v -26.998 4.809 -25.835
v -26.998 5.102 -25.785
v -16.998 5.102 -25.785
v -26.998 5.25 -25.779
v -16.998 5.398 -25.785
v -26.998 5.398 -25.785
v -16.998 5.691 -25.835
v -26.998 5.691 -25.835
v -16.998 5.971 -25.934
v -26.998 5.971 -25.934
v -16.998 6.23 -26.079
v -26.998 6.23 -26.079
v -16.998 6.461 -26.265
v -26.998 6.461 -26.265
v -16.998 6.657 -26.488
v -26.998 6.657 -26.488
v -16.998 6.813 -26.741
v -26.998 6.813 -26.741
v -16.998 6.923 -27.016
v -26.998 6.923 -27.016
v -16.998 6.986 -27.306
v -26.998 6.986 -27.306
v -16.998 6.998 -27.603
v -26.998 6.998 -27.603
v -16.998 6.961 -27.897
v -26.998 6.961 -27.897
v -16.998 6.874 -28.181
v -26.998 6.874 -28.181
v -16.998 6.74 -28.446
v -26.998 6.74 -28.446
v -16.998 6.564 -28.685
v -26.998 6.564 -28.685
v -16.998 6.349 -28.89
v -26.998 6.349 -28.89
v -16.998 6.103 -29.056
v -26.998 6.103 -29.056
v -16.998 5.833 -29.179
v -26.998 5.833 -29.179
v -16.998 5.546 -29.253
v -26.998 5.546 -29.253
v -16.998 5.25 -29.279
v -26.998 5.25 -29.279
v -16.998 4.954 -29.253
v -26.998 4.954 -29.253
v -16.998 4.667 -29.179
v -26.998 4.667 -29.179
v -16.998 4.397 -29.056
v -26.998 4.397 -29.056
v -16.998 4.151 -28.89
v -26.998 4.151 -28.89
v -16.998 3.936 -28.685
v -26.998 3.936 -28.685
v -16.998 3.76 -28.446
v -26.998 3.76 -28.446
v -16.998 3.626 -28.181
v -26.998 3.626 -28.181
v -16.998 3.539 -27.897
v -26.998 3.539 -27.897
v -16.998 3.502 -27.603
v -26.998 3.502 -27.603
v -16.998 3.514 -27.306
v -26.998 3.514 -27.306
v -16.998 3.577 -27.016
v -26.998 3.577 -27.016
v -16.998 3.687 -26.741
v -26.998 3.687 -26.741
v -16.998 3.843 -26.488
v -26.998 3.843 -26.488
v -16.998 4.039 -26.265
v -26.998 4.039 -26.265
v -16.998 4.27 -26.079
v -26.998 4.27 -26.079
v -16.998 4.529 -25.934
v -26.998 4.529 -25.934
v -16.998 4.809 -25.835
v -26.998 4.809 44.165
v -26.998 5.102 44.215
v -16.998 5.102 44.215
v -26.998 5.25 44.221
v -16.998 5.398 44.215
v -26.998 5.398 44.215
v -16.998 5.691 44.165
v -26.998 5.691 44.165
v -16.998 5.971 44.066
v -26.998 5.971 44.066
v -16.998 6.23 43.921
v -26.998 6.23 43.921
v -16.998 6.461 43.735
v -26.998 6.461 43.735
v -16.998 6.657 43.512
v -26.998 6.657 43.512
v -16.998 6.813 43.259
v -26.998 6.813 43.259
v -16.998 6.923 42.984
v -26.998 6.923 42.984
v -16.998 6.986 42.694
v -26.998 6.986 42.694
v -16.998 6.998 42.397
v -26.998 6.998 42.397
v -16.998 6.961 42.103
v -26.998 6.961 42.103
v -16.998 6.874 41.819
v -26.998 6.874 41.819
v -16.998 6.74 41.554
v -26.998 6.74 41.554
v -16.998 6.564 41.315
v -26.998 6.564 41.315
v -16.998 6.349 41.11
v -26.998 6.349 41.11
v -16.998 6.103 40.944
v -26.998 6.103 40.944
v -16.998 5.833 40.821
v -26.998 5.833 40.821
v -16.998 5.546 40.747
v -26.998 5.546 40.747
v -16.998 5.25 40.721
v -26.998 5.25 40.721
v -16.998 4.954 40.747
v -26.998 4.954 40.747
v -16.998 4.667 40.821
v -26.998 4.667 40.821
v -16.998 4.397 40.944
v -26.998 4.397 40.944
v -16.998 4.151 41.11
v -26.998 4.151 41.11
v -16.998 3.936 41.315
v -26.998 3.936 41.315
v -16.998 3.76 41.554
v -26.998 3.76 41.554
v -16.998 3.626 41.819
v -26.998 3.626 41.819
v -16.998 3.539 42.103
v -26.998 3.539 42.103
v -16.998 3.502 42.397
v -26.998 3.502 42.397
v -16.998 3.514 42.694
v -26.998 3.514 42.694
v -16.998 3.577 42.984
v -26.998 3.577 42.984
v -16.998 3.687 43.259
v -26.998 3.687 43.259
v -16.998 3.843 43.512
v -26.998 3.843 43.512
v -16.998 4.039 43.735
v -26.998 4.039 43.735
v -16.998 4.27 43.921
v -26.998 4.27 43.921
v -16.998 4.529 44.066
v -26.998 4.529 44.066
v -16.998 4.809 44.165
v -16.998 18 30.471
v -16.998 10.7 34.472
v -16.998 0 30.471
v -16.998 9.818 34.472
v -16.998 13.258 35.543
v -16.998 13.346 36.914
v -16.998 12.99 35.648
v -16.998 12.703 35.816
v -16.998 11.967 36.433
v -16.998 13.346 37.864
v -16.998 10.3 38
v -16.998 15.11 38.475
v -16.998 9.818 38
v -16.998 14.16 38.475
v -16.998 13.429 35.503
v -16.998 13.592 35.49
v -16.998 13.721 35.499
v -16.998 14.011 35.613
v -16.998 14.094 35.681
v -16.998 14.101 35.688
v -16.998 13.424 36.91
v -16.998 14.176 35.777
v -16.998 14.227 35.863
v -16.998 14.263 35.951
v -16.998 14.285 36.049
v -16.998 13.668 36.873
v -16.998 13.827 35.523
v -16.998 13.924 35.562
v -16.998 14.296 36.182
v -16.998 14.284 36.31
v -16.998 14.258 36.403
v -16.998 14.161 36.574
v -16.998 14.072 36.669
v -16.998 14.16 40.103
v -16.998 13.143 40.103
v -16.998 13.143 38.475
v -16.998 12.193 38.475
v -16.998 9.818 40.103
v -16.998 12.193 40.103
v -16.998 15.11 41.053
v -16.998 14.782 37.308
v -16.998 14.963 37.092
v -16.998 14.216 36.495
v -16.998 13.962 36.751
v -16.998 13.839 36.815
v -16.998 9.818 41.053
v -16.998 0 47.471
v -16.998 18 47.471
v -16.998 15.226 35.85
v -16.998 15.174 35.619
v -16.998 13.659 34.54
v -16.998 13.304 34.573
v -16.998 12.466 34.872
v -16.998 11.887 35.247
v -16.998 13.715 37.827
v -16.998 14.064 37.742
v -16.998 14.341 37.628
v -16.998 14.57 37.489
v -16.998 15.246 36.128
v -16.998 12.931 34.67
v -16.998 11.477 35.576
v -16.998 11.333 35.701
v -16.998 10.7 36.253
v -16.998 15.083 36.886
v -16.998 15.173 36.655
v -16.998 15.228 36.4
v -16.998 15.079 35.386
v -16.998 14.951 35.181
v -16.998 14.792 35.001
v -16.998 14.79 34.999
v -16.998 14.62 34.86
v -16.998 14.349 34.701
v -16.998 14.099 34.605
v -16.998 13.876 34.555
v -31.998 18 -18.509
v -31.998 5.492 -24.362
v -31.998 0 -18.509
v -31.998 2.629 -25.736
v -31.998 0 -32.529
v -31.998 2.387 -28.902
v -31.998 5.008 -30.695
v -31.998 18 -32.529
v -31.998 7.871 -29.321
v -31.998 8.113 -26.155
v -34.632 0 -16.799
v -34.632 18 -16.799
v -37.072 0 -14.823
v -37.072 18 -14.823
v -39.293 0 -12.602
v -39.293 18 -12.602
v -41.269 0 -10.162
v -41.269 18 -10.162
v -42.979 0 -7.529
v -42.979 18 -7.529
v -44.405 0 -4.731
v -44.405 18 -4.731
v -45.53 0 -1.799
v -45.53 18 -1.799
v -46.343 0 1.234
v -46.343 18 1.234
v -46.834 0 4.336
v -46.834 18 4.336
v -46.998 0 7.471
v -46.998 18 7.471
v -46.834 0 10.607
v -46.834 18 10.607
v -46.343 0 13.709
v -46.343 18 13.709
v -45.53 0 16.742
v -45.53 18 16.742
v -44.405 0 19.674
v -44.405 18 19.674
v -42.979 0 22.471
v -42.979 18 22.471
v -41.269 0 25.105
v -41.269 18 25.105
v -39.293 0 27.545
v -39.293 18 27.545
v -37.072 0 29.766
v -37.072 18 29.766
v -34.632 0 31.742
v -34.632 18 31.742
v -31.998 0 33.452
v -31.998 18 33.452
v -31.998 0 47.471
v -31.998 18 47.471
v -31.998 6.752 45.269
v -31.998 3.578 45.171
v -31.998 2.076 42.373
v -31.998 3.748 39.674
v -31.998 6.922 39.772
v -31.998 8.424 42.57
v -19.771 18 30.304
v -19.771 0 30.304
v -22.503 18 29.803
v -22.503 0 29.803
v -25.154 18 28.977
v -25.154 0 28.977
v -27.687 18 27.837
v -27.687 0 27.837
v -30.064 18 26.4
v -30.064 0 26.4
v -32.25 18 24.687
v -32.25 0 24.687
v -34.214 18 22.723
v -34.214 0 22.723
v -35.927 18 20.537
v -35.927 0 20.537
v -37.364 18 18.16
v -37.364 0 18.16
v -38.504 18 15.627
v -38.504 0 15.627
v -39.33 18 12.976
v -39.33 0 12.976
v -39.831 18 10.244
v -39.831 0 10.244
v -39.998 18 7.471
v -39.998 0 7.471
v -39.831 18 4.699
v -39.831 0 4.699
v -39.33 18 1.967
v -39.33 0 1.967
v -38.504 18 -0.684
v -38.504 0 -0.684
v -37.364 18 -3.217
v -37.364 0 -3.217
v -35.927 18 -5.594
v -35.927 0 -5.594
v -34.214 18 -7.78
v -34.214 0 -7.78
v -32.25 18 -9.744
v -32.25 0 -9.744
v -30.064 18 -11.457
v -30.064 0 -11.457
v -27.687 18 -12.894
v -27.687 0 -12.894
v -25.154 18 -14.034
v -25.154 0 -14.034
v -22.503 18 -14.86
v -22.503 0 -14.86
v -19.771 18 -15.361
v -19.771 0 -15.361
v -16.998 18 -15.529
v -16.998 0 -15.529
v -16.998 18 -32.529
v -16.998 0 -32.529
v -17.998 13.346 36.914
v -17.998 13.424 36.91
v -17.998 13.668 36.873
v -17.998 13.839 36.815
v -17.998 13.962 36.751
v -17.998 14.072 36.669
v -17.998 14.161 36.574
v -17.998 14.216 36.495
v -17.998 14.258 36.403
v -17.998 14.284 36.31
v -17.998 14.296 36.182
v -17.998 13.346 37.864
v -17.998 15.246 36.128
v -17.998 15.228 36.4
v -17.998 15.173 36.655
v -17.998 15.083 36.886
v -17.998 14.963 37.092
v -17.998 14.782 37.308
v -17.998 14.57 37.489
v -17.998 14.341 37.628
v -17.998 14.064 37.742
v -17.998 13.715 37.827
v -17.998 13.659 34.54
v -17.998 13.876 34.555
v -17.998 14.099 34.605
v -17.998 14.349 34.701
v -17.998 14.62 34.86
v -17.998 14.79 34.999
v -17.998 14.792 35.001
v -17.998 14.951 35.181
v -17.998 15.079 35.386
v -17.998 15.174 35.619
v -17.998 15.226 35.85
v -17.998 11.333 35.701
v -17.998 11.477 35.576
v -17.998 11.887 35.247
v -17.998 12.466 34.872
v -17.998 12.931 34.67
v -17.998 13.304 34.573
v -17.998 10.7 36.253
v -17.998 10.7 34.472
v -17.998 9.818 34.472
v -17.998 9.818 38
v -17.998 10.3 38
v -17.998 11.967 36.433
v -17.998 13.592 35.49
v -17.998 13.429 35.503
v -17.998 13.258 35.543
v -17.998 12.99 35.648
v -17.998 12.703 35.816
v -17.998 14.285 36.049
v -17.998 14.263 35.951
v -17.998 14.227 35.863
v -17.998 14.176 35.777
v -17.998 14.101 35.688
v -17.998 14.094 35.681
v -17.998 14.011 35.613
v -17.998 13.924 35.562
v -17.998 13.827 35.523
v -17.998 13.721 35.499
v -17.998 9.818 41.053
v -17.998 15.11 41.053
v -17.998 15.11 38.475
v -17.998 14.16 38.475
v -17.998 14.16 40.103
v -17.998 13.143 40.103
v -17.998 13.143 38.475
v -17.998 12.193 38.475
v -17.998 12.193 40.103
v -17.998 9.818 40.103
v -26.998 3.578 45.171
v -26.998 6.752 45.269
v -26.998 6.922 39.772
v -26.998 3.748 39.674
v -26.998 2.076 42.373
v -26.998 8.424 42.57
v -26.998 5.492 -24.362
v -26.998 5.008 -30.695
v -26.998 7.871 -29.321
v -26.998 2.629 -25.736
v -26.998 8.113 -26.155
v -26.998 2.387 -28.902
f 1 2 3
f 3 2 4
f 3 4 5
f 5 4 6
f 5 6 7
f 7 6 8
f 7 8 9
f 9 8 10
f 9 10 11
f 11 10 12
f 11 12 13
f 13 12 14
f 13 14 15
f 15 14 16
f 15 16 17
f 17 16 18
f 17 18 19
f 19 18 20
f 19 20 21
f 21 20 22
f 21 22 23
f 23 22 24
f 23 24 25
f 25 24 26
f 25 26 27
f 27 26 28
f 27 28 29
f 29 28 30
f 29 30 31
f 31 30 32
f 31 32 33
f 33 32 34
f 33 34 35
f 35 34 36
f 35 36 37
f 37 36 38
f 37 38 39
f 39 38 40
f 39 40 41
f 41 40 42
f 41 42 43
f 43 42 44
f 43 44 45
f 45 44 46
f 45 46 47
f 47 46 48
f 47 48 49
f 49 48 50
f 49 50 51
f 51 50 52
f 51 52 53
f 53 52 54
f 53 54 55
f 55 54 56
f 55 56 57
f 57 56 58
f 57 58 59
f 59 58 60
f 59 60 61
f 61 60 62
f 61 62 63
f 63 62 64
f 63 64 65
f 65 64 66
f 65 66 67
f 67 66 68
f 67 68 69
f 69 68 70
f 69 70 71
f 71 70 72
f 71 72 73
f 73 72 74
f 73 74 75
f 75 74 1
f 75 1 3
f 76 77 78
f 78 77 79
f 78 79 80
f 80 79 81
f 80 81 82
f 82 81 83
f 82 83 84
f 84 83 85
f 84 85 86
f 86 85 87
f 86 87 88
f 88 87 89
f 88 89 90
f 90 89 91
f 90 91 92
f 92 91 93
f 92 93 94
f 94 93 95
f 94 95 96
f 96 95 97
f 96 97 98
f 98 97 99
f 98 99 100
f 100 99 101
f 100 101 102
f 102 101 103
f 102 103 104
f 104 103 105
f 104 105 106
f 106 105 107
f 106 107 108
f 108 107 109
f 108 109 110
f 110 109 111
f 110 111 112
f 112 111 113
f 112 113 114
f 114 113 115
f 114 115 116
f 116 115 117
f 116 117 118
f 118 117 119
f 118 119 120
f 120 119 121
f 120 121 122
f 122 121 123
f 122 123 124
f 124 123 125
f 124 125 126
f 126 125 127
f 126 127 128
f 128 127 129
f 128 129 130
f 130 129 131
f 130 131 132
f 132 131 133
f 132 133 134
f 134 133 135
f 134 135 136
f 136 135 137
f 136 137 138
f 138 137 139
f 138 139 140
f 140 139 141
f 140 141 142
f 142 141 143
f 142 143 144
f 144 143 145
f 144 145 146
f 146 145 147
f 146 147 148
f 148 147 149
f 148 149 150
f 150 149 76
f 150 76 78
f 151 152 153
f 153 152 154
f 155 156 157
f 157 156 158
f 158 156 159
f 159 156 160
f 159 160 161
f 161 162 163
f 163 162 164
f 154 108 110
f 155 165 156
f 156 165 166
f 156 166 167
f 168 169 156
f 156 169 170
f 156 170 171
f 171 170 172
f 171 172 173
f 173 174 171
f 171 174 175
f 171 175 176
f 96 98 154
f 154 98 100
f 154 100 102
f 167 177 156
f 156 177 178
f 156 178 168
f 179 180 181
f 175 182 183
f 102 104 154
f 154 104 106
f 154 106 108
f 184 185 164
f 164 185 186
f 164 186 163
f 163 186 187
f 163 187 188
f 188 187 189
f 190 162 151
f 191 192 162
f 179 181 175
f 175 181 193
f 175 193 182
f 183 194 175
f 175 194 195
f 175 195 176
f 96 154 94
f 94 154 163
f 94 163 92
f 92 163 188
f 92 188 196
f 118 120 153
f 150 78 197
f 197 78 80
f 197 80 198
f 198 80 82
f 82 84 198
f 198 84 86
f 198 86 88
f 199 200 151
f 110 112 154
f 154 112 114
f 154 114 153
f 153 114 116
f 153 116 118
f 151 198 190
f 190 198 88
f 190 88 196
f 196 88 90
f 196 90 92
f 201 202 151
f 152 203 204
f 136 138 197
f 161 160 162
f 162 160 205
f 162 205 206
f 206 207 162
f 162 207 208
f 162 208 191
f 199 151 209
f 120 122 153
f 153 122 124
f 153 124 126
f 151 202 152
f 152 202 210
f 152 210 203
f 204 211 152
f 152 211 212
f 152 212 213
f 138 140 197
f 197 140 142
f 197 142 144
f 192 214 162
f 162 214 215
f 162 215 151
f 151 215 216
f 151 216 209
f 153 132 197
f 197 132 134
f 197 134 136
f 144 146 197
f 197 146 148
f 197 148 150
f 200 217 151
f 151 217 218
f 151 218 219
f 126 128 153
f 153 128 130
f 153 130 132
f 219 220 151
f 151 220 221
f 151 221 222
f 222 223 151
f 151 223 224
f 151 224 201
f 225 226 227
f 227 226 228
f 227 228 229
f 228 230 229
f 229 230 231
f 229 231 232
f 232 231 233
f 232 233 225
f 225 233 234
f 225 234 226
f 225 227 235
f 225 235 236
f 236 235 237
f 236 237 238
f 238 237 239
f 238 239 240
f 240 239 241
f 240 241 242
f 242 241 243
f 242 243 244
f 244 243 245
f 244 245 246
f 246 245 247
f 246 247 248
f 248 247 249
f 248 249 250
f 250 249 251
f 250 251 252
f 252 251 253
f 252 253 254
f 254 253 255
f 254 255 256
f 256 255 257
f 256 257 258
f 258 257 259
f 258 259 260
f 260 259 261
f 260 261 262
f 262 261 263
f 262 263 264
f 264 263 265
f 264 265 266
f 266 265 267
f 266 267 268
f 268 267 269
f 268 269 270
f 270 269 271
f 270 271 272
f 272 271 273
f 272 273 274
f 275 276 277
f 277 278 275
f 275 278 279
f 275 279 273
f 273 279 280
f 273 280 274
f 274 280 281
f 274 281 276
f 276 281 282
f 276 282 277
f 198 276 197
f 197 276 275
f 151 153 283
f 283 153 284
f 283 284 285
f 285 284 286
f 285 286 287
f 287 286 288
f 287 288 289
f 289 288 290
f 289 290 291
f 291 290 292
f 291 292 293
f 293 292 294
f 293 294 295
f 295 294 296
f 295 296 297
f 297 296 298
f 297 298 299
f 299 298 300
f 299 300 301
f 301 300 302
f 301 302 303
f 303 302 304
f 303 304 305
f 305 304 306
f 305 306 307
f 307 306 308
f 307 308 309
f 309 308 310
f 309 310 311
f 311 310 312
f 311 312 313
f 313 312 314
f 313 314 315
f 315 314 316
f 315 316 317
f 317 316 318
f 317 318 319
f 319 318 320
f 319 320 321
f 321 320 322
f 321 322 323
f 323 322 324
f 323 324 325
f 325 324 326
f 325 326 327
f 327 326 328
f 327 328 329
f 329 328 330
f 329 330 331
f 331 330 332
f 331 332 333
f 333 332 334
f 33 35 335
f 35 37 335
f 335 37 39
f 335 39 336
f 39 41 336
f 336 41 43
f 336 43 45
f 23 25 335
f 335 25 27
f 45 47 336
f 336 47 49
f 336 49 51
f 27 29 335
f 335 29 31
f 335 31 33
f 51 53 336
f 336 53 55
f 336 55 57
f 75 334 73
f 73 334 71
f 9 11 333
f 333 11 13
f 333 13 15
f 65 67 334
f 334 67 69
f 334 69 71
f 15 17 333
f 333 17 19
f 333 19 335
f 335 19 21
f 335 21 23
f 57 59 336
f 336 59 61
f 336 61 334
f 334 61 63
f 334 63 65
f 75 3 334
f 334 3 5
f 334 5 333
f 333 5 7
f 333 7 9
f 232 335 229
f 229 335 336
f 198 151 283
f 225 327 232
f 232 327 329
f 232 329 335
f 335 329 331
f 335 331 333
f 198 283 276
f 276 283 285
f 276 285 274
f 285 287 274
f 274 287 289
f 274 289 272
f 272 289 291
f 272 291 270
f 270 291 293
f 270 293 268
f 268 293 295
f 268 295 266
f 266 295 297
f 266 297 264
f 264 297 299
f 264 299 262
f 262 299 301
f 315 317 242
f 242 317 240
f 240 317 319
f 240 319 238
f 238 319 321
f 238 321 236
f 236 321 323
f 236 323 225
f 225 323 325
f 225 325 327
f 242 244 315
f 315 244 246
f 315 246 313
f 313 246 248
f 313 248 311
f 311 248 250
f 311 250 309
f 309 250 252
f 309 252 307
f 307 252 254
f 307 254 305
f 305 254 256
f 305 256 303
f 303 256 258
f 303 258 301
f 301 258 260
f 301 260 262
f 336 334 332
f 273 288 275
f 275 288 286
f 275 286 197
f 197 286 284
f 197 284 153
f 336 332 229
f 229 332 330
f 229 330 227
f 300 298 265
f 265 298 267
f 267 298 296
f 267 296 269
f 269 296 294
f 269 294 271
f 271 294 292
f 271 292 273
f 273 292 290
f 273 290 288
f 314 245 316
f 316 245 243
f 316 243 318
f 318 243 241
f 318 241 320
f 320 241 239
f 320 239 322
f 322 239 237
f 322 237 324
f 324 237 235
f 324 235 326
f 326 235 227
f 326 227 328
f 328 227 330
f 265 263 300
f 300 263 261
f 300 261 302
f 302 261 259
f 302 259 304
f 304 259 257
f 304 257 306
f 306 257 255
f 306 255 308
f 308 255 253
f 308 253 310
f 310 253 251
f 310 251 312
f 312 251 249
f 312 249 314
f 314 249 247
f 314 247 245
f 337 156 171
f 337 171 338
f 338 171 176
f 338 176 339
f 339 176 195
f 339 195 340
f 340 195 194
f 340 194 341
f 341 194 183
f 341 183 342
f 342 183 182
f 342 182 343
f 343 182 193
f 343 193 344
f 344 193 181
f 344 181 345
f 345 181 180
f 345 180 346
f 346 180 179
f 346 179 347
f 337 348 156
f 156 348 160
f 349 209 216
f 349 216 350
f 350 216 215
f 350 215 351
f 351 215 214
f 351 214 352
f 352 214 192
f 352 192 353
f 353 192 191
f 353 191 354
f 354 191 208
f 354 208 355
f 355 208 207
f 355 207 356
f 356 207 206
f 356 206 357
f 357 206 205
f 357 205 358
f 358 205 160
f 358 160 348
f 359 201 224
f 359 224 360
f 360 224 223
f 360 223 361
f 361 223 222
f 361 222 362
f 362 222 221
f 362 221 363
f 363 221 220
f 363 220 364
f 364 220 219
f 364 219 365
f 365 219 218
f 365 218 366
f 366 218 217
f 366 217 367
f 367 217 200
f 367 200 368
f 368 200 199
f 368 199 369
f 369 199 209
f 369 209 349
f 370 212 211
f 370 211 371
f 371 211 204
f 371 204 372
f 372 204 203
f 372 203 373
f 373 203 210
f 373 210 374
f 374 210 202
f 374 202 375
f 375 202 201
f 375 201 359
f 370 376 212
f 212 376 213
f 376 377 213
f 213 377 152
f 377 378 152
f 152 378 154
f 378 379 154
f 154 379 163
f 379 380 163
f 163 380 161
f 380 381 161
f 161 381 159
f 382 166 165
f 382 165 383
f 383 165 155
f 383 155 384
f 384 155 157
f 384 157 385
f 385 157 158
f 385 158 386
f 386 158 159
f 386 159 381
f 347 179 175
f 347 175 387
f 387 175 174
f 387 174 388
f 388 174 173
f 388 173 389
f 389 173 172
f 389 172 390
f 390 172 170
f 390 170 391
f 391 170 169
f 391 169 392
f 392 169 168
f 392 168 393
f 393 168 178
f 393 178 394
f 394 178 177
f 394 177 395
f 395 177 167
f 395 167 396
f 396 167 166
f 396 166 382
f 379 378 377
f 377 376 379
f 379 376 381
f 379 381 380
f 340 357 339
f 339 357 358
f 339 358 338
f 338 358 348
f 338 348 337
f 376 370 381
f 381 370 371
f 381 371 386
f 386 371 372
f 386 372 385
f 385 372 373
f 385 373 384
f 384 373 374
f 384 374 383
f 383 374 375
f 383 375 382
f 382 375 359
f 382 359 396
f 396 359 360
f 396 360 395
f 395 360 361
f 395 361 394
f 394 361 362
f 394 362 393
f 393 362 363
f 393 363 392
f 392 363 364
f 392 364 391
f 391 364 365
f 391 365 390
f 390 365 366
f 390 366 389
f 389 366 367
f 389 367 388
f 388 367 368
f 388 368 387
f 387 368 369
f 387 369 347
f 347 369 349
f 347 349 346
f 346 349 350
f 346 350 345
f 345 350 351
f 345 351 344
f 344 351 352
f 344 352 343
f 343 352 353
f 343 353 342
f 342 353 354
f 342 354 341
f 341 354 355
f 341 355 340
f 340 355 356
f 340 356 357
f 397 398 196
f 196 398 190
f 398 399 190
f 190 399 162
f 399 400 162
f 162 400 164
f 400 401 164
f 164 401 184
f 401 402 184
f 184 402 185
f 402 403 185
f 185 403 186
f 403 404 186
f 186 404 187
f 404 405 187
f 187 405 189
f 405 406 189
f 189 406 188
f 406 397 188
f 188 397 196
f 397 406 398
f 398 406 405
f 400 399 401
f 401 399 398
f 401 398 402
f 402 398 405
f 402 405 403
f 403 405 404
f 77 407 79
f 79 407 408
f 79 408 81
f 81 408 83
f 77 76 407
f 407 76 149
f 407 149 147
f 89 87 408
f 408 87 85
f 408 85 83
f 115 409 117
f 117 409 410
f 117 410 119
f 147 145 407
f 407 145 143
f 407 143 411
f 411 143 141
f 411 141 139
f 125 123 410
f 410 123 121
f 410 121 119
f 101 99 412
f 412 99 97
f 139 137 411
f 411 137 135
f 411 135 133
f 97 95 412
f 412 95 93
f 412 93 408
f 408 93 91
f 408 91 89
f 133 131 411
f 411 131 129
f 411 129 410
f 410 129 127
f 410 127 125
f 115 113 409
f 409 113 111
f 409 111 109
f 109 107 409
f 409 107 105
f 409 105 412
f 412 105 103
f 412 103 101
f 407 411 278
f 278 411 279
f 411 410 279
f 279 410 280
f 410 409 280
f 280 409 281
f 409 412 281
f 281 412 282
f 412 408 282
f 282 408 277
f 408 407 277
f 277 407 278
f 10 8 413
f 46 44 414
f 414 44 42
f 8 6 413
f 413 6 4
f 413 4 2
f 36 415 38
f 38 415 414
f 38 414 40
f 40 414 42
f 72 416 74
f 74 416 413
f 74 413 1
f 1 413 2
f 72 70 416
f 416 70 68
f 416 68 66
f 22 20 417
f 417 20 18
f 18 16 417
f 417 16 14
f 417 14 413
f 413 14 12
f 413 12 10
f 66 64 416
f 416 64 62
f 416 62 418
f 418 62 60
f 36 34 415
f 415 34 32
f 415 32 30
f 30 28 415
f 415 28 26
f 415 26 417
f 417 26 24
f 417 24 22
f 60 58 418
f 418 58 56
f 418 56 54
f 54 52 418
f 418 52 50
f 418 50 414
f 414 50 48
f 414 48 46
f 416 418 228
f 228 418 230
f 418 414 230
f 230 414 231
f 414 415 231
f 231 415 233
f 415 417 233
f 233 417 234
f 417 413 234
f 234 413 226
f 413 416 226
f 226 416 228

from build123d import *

# Parameters (mm, degrees)
BOSS_EXTRUDE1_DEPTH = 18
SKETCH2_R           = 1.75
CUT_EXTRUDE1_DEPTH  = 31
CUT_EXTRUDE2_DEPTH  = 1
CUT_EXTRUDE3_DEPTH  = 5


with BuildPart() as part:
    # Sketch1 → Boss-Extrude1 (new body)
    with BuildSketch(Plane(origin=(0, 0, 0), x_dir=(1, 0, 0), z_dir=(0, 1, 0))):
        with BuildLine():
            ThreePointArc((-31.998275301, 18.509333542), (-46.998275301, -7.471428571), (-31.998275301, -33.452190685))
            Line((-31.998275301, -33.452190685), (-31.998275301, -47.471428571))
            Line((-31.998275301, -47.471428571), (-16.998275301, -47.471428571))
            Line((-16.998275301, -47.471428571), (-16.998275301, -30.471428571))
            ThreePointArc((-16.998275301, -30.471428571), (-39.998275301, -7.471428571), (-16.998275301, 15.528571429))
            Line((-16.998275301, 15.528571429), (-16.998275301, 32.528571429))
            Line((-16.998275301, 32.528571429), (-31.998275301, 32.528571429))
            Line((-31.998275301, 32.528571429), (-31.998275301, 18.509333542))
        make_face()
    extrude(amount=BOSS_EXTRUDE1_DEPTH)

    # Sketch2 → Cut-Extrude1 (cut, through all)
    with BuildSketch(Plane(origin=(-16.998275301, 0, 0), x_dir=(0, 0, -1), z_dir=(1, 0, 0))):
        with Locations((-42.471428571, 5.25)):
            Circle(SKETCH2_R)
        with Locations((27.528571429, 5.25)):
            Circle(SKETCH2_R)
    extrude(amount=-CUT_EXTRUDE1_DEPTH, mode=Mode.SUBTRACT)

    # Sketch3 → Cut-Extrude2 (cut)
    with BuildSketch(Plane(origin=(-16.998275301, 0, 0), x_dir=(0, 0, -1), z_dir=(1, 0, 0))):
        Polygon((-41.052726264, 15.110089197), (-38.474734811, 15.110089197), (-38.474734811, 14.160302873), (-40.102939939, 14.160302873), (-40.102939939, 13.142674667), (-38.474734811, 13.142674667), (-38.474734811, 12.192888343), (-40.102939939, 12.192888343), (-40.102939939, 9.818422531), (-41.052726264, 9.818422531), align=None)
        with BuildLine():
            Line((-36.914371563, 13.346200308), (-37.864157888, 13.346200308))
            add(Edge.make_bspline(
                [(-37.864157888, 13.346200308), (-37.860055906, 13.418046619), (-37.852040881, 13.558429997), (-37.820159135, 13.762341347), (-37.77743869, 13.955015151), (-37.720422585, 14.135777413), (-37.648778118, 14.304562451), (-37.564348886, 14.461945662), (-37.464977915, 14.60709842), (-37.352780144, 14.739320716), (-37.229660384, 14.857938558), (-37.098174722, 14.963112588), (-36.956311907, 15.049899551), (-36.806663889, 15.121317187), (-36.64925615, 15.178376559), (-36.482599366, 15.216525367), (-36.30813654, 15.242360114), (-36.188702609, 15.244620758), (-36.127829763, 15.245772958)],
                knots=[0, 0, 0, 0, 0.000215773, 0.000421607, 0.000618333, 0.000807411, 0.000989332, 0.001167669, 0.001342317, 0.001516048, 0.001686973, 0.001854511, 0.002020137, 0.00218466, 0.002351301, 0.002521253, 0.002696799, 0.002879275, 0.002879275, 0.002879275, 0.002879275], degree=3))
            add(Edge.make_bspline(
                [(-36.127829763, 15.245772958), (-36.053109208, 15.24344148), (-35.907237174, 15.238889888), (-35.695273537, 15.200063297), (-35.497322677, 15.135119825), (-35.313528483, 15.044376667), (-35.145455629, 14.929096996), (-34.993131985, 14.791644856), (-34.861164061, 14.629136428), (-34.748715142, 14.448333423), (-34.65528353, 14.256888487), (-34.589810548, 14.058926484), (-34.546775862, 13.859700523), (-34.542185946, 13.725551844), (-34.539905751, 13.658908976)],
                knots=[0, 0, 0, 0, 0.000224028, 0.000437354, 0.000643845, 0.000847219, 0.001050092, 0.001253455, 0.001460573, 0.001675861, 0.00189111, 0.002097935, 0.002300212, 0.002499903, 0.002499903, 0.002499903, 0.002499903], degree=3))
            add(Edge.make_bspline(
                [(-34.539905751, 13.658908976), (-34.540793539, 13.618598659), (-34.542580436, 13.537463948), (-34.555004968, 13.414687217), (-34.573644221, 13.289624762), (-34.601747672, 13.162383812), (-34.63679498, 13.032928701), (-34.679312431, 12.900872012), (-34.730286257, 12.76696246), (-34.788865811, 12.629692915), (-34.858751366, 12.488617716), (-34.940123382, 12.341622092), (-35.035141655, 12.188836439), (-35.142658484, 12.02939808), (-35.263196054, 11.863558473), (-35.397342788, 11.69181718), (-35.543553632, 11.513569038), (-35.64732358, 11.394420158), (-35.700637923, 11.333204515)],
                knots=[0, 0, 0, 0, 0.000120918, 0.000243377, 0.000369908, 0.000500063, 0.000634034, 0.000772147, 0.000916066, 0.001063745, 0.001219713, 0.001388155, 0.0015676, 0.00175929, 0.00196496, 0.002182512, 0.002412975, 0.002656496, 0.002656496, 0.002656496, 0.002656496], degree=3))
            Line((-35.700637923, 11.333204515), (-36.25291323, 10.700366975))
            Line((-36.25291323, 10.700366975), (-34.472063871, 10.700366975))
            Line((-34.472063871, 10.700366975), (-34.472063871, 9.818422531))
            Line((-34.472063871, 9.818422531), (-37.999841648, 9.818422531))
            Line((-37.999841648, 9.818422531), (-37.999841648, 10.299675869))
            Line((-37.999841648, 10.299675869), (-36.433118224, 11.967102085))
            add(Edge.make_bspline(
                [(-36.433118224, 11.967102085), (-36.387757555, 12.015741425), (-36.299907391, 12.109941403), (-36.17490566, 12.248284093), (-36.061790136, 12.379568004), (-35.962906361, 12.505191043), (-35.873065041, 12.621078512), (-35.796272194, 12.730723404), (-35.731825226, 12.833134488), (-35.661858901, 12.956624369), (-35.595413893, 13.103908028), (-35.534446576, 13.273584842), (-35.497282777, 13.435756798), (-35.492152997, 13.541431531), (-35.489692076, 13.592127125)],
                knots=[0, 0, 0, 0, 0.000199522, 0.000386415, 0.00055934, 0.00071926, 0.000865974, 0.000999188, 0.001120653, 0.001228864, 0.001424763, 0.001604456, 0.001769334, 0.001921366, 0.001921366, 0.001921366, 0.001921366], degree=3))
            add(Edge.make_bspline(
                [(-35.489692076, 13.592127125), (-35.491532047, 13.641171201), (-35.495097287, 13.736201961), (-35.534276384, 13.871382712), (-35.594974, 13.993775082), (-35.680505512, 14.09972185), (-35.784110962, 14.186785334), (-35.903836792, 14.251540708), (-36.038706883, 14.288904261), (-36.133253387, 14.293580844), (-36.181891261, 14.295986633)],
                knots=[0, 0, 0, 0, 0.000146748, 0.000284348, 0.000418508, 0.000554258, 0.000689709, 0.000822026, 0.000959626, 0.001105406, 0.001105406, 0.001105406, 0.001105406], degree=3))
            add(Edge.make_bspline(
                [(-36.181891261, 14.295986633), (-36.207018207, 14.295097906), (-36.256484634, 14.293348303), (-36.329196415, 14.281701669), (-36.3983869, 14.261175694), (-36.464826215, 14.233673776), (-36.527805303, 14.197219786), (-36.587165312, 14.152284435), (-36.643531673, 14.100009634), (-36.696645869, 14.040558837), (-36.74498672, 13.974211731), (-36.787922888, 13.90157426), (-36.823423951, 13.822691512), (-36.854680377, 13.738604861), (-36.878786828, 13.648411147), (-36.896339316, 13.552650169), (-36.909683299, 13.451477719), (-36.912780379, 13.381931173), (-36.914371563, 13.346200308)],
                knots=[0, 0, 0, 0, 7.5381e-05, 0.0001484, 0.000220186, 0.000291452, 0.000363636, 0.000437838, 0.000514351, 0.000593931, 0.00067662, 0.000760248, 0.000846574, 0.00093578, 0.001029123, 0.001126213, 0.001227716, 0.001334967, 0.001334967, 0.001334967, 0.001334967], degree=3))
        make_face()
    extrude(amount=-CUT_EXTRUDE2_DEPTH, mode=Mode.SUBTRACT)

    # Sketch4 → Cut-Extrude3 (cut)
    with BuildSketch(Plane.ZY.offset(31.998275301)):
        Polygon((-25.735714731, 2.629122629), (-24.362396696, 5.49222076), (-26.155253394, 8.113098131), (-29.321428126, 7.870877371), (-30.694746161, 5.00777924), (-28.901889463, 2.386901869), align=None)
        Polygon((45.170887067, 3.577798708), (45.269326619, 6.751698988), (42.569868123, 8.42390028), (39.771970075, 6.922201292), (39.673530524, 3.748301012), (42.37298902, 2.07609972), align=None)
    extrude(amount=-CUT_EXTRUDE3_DEPTH, mode=Mode.SUBTRACT)


solid = part.part
